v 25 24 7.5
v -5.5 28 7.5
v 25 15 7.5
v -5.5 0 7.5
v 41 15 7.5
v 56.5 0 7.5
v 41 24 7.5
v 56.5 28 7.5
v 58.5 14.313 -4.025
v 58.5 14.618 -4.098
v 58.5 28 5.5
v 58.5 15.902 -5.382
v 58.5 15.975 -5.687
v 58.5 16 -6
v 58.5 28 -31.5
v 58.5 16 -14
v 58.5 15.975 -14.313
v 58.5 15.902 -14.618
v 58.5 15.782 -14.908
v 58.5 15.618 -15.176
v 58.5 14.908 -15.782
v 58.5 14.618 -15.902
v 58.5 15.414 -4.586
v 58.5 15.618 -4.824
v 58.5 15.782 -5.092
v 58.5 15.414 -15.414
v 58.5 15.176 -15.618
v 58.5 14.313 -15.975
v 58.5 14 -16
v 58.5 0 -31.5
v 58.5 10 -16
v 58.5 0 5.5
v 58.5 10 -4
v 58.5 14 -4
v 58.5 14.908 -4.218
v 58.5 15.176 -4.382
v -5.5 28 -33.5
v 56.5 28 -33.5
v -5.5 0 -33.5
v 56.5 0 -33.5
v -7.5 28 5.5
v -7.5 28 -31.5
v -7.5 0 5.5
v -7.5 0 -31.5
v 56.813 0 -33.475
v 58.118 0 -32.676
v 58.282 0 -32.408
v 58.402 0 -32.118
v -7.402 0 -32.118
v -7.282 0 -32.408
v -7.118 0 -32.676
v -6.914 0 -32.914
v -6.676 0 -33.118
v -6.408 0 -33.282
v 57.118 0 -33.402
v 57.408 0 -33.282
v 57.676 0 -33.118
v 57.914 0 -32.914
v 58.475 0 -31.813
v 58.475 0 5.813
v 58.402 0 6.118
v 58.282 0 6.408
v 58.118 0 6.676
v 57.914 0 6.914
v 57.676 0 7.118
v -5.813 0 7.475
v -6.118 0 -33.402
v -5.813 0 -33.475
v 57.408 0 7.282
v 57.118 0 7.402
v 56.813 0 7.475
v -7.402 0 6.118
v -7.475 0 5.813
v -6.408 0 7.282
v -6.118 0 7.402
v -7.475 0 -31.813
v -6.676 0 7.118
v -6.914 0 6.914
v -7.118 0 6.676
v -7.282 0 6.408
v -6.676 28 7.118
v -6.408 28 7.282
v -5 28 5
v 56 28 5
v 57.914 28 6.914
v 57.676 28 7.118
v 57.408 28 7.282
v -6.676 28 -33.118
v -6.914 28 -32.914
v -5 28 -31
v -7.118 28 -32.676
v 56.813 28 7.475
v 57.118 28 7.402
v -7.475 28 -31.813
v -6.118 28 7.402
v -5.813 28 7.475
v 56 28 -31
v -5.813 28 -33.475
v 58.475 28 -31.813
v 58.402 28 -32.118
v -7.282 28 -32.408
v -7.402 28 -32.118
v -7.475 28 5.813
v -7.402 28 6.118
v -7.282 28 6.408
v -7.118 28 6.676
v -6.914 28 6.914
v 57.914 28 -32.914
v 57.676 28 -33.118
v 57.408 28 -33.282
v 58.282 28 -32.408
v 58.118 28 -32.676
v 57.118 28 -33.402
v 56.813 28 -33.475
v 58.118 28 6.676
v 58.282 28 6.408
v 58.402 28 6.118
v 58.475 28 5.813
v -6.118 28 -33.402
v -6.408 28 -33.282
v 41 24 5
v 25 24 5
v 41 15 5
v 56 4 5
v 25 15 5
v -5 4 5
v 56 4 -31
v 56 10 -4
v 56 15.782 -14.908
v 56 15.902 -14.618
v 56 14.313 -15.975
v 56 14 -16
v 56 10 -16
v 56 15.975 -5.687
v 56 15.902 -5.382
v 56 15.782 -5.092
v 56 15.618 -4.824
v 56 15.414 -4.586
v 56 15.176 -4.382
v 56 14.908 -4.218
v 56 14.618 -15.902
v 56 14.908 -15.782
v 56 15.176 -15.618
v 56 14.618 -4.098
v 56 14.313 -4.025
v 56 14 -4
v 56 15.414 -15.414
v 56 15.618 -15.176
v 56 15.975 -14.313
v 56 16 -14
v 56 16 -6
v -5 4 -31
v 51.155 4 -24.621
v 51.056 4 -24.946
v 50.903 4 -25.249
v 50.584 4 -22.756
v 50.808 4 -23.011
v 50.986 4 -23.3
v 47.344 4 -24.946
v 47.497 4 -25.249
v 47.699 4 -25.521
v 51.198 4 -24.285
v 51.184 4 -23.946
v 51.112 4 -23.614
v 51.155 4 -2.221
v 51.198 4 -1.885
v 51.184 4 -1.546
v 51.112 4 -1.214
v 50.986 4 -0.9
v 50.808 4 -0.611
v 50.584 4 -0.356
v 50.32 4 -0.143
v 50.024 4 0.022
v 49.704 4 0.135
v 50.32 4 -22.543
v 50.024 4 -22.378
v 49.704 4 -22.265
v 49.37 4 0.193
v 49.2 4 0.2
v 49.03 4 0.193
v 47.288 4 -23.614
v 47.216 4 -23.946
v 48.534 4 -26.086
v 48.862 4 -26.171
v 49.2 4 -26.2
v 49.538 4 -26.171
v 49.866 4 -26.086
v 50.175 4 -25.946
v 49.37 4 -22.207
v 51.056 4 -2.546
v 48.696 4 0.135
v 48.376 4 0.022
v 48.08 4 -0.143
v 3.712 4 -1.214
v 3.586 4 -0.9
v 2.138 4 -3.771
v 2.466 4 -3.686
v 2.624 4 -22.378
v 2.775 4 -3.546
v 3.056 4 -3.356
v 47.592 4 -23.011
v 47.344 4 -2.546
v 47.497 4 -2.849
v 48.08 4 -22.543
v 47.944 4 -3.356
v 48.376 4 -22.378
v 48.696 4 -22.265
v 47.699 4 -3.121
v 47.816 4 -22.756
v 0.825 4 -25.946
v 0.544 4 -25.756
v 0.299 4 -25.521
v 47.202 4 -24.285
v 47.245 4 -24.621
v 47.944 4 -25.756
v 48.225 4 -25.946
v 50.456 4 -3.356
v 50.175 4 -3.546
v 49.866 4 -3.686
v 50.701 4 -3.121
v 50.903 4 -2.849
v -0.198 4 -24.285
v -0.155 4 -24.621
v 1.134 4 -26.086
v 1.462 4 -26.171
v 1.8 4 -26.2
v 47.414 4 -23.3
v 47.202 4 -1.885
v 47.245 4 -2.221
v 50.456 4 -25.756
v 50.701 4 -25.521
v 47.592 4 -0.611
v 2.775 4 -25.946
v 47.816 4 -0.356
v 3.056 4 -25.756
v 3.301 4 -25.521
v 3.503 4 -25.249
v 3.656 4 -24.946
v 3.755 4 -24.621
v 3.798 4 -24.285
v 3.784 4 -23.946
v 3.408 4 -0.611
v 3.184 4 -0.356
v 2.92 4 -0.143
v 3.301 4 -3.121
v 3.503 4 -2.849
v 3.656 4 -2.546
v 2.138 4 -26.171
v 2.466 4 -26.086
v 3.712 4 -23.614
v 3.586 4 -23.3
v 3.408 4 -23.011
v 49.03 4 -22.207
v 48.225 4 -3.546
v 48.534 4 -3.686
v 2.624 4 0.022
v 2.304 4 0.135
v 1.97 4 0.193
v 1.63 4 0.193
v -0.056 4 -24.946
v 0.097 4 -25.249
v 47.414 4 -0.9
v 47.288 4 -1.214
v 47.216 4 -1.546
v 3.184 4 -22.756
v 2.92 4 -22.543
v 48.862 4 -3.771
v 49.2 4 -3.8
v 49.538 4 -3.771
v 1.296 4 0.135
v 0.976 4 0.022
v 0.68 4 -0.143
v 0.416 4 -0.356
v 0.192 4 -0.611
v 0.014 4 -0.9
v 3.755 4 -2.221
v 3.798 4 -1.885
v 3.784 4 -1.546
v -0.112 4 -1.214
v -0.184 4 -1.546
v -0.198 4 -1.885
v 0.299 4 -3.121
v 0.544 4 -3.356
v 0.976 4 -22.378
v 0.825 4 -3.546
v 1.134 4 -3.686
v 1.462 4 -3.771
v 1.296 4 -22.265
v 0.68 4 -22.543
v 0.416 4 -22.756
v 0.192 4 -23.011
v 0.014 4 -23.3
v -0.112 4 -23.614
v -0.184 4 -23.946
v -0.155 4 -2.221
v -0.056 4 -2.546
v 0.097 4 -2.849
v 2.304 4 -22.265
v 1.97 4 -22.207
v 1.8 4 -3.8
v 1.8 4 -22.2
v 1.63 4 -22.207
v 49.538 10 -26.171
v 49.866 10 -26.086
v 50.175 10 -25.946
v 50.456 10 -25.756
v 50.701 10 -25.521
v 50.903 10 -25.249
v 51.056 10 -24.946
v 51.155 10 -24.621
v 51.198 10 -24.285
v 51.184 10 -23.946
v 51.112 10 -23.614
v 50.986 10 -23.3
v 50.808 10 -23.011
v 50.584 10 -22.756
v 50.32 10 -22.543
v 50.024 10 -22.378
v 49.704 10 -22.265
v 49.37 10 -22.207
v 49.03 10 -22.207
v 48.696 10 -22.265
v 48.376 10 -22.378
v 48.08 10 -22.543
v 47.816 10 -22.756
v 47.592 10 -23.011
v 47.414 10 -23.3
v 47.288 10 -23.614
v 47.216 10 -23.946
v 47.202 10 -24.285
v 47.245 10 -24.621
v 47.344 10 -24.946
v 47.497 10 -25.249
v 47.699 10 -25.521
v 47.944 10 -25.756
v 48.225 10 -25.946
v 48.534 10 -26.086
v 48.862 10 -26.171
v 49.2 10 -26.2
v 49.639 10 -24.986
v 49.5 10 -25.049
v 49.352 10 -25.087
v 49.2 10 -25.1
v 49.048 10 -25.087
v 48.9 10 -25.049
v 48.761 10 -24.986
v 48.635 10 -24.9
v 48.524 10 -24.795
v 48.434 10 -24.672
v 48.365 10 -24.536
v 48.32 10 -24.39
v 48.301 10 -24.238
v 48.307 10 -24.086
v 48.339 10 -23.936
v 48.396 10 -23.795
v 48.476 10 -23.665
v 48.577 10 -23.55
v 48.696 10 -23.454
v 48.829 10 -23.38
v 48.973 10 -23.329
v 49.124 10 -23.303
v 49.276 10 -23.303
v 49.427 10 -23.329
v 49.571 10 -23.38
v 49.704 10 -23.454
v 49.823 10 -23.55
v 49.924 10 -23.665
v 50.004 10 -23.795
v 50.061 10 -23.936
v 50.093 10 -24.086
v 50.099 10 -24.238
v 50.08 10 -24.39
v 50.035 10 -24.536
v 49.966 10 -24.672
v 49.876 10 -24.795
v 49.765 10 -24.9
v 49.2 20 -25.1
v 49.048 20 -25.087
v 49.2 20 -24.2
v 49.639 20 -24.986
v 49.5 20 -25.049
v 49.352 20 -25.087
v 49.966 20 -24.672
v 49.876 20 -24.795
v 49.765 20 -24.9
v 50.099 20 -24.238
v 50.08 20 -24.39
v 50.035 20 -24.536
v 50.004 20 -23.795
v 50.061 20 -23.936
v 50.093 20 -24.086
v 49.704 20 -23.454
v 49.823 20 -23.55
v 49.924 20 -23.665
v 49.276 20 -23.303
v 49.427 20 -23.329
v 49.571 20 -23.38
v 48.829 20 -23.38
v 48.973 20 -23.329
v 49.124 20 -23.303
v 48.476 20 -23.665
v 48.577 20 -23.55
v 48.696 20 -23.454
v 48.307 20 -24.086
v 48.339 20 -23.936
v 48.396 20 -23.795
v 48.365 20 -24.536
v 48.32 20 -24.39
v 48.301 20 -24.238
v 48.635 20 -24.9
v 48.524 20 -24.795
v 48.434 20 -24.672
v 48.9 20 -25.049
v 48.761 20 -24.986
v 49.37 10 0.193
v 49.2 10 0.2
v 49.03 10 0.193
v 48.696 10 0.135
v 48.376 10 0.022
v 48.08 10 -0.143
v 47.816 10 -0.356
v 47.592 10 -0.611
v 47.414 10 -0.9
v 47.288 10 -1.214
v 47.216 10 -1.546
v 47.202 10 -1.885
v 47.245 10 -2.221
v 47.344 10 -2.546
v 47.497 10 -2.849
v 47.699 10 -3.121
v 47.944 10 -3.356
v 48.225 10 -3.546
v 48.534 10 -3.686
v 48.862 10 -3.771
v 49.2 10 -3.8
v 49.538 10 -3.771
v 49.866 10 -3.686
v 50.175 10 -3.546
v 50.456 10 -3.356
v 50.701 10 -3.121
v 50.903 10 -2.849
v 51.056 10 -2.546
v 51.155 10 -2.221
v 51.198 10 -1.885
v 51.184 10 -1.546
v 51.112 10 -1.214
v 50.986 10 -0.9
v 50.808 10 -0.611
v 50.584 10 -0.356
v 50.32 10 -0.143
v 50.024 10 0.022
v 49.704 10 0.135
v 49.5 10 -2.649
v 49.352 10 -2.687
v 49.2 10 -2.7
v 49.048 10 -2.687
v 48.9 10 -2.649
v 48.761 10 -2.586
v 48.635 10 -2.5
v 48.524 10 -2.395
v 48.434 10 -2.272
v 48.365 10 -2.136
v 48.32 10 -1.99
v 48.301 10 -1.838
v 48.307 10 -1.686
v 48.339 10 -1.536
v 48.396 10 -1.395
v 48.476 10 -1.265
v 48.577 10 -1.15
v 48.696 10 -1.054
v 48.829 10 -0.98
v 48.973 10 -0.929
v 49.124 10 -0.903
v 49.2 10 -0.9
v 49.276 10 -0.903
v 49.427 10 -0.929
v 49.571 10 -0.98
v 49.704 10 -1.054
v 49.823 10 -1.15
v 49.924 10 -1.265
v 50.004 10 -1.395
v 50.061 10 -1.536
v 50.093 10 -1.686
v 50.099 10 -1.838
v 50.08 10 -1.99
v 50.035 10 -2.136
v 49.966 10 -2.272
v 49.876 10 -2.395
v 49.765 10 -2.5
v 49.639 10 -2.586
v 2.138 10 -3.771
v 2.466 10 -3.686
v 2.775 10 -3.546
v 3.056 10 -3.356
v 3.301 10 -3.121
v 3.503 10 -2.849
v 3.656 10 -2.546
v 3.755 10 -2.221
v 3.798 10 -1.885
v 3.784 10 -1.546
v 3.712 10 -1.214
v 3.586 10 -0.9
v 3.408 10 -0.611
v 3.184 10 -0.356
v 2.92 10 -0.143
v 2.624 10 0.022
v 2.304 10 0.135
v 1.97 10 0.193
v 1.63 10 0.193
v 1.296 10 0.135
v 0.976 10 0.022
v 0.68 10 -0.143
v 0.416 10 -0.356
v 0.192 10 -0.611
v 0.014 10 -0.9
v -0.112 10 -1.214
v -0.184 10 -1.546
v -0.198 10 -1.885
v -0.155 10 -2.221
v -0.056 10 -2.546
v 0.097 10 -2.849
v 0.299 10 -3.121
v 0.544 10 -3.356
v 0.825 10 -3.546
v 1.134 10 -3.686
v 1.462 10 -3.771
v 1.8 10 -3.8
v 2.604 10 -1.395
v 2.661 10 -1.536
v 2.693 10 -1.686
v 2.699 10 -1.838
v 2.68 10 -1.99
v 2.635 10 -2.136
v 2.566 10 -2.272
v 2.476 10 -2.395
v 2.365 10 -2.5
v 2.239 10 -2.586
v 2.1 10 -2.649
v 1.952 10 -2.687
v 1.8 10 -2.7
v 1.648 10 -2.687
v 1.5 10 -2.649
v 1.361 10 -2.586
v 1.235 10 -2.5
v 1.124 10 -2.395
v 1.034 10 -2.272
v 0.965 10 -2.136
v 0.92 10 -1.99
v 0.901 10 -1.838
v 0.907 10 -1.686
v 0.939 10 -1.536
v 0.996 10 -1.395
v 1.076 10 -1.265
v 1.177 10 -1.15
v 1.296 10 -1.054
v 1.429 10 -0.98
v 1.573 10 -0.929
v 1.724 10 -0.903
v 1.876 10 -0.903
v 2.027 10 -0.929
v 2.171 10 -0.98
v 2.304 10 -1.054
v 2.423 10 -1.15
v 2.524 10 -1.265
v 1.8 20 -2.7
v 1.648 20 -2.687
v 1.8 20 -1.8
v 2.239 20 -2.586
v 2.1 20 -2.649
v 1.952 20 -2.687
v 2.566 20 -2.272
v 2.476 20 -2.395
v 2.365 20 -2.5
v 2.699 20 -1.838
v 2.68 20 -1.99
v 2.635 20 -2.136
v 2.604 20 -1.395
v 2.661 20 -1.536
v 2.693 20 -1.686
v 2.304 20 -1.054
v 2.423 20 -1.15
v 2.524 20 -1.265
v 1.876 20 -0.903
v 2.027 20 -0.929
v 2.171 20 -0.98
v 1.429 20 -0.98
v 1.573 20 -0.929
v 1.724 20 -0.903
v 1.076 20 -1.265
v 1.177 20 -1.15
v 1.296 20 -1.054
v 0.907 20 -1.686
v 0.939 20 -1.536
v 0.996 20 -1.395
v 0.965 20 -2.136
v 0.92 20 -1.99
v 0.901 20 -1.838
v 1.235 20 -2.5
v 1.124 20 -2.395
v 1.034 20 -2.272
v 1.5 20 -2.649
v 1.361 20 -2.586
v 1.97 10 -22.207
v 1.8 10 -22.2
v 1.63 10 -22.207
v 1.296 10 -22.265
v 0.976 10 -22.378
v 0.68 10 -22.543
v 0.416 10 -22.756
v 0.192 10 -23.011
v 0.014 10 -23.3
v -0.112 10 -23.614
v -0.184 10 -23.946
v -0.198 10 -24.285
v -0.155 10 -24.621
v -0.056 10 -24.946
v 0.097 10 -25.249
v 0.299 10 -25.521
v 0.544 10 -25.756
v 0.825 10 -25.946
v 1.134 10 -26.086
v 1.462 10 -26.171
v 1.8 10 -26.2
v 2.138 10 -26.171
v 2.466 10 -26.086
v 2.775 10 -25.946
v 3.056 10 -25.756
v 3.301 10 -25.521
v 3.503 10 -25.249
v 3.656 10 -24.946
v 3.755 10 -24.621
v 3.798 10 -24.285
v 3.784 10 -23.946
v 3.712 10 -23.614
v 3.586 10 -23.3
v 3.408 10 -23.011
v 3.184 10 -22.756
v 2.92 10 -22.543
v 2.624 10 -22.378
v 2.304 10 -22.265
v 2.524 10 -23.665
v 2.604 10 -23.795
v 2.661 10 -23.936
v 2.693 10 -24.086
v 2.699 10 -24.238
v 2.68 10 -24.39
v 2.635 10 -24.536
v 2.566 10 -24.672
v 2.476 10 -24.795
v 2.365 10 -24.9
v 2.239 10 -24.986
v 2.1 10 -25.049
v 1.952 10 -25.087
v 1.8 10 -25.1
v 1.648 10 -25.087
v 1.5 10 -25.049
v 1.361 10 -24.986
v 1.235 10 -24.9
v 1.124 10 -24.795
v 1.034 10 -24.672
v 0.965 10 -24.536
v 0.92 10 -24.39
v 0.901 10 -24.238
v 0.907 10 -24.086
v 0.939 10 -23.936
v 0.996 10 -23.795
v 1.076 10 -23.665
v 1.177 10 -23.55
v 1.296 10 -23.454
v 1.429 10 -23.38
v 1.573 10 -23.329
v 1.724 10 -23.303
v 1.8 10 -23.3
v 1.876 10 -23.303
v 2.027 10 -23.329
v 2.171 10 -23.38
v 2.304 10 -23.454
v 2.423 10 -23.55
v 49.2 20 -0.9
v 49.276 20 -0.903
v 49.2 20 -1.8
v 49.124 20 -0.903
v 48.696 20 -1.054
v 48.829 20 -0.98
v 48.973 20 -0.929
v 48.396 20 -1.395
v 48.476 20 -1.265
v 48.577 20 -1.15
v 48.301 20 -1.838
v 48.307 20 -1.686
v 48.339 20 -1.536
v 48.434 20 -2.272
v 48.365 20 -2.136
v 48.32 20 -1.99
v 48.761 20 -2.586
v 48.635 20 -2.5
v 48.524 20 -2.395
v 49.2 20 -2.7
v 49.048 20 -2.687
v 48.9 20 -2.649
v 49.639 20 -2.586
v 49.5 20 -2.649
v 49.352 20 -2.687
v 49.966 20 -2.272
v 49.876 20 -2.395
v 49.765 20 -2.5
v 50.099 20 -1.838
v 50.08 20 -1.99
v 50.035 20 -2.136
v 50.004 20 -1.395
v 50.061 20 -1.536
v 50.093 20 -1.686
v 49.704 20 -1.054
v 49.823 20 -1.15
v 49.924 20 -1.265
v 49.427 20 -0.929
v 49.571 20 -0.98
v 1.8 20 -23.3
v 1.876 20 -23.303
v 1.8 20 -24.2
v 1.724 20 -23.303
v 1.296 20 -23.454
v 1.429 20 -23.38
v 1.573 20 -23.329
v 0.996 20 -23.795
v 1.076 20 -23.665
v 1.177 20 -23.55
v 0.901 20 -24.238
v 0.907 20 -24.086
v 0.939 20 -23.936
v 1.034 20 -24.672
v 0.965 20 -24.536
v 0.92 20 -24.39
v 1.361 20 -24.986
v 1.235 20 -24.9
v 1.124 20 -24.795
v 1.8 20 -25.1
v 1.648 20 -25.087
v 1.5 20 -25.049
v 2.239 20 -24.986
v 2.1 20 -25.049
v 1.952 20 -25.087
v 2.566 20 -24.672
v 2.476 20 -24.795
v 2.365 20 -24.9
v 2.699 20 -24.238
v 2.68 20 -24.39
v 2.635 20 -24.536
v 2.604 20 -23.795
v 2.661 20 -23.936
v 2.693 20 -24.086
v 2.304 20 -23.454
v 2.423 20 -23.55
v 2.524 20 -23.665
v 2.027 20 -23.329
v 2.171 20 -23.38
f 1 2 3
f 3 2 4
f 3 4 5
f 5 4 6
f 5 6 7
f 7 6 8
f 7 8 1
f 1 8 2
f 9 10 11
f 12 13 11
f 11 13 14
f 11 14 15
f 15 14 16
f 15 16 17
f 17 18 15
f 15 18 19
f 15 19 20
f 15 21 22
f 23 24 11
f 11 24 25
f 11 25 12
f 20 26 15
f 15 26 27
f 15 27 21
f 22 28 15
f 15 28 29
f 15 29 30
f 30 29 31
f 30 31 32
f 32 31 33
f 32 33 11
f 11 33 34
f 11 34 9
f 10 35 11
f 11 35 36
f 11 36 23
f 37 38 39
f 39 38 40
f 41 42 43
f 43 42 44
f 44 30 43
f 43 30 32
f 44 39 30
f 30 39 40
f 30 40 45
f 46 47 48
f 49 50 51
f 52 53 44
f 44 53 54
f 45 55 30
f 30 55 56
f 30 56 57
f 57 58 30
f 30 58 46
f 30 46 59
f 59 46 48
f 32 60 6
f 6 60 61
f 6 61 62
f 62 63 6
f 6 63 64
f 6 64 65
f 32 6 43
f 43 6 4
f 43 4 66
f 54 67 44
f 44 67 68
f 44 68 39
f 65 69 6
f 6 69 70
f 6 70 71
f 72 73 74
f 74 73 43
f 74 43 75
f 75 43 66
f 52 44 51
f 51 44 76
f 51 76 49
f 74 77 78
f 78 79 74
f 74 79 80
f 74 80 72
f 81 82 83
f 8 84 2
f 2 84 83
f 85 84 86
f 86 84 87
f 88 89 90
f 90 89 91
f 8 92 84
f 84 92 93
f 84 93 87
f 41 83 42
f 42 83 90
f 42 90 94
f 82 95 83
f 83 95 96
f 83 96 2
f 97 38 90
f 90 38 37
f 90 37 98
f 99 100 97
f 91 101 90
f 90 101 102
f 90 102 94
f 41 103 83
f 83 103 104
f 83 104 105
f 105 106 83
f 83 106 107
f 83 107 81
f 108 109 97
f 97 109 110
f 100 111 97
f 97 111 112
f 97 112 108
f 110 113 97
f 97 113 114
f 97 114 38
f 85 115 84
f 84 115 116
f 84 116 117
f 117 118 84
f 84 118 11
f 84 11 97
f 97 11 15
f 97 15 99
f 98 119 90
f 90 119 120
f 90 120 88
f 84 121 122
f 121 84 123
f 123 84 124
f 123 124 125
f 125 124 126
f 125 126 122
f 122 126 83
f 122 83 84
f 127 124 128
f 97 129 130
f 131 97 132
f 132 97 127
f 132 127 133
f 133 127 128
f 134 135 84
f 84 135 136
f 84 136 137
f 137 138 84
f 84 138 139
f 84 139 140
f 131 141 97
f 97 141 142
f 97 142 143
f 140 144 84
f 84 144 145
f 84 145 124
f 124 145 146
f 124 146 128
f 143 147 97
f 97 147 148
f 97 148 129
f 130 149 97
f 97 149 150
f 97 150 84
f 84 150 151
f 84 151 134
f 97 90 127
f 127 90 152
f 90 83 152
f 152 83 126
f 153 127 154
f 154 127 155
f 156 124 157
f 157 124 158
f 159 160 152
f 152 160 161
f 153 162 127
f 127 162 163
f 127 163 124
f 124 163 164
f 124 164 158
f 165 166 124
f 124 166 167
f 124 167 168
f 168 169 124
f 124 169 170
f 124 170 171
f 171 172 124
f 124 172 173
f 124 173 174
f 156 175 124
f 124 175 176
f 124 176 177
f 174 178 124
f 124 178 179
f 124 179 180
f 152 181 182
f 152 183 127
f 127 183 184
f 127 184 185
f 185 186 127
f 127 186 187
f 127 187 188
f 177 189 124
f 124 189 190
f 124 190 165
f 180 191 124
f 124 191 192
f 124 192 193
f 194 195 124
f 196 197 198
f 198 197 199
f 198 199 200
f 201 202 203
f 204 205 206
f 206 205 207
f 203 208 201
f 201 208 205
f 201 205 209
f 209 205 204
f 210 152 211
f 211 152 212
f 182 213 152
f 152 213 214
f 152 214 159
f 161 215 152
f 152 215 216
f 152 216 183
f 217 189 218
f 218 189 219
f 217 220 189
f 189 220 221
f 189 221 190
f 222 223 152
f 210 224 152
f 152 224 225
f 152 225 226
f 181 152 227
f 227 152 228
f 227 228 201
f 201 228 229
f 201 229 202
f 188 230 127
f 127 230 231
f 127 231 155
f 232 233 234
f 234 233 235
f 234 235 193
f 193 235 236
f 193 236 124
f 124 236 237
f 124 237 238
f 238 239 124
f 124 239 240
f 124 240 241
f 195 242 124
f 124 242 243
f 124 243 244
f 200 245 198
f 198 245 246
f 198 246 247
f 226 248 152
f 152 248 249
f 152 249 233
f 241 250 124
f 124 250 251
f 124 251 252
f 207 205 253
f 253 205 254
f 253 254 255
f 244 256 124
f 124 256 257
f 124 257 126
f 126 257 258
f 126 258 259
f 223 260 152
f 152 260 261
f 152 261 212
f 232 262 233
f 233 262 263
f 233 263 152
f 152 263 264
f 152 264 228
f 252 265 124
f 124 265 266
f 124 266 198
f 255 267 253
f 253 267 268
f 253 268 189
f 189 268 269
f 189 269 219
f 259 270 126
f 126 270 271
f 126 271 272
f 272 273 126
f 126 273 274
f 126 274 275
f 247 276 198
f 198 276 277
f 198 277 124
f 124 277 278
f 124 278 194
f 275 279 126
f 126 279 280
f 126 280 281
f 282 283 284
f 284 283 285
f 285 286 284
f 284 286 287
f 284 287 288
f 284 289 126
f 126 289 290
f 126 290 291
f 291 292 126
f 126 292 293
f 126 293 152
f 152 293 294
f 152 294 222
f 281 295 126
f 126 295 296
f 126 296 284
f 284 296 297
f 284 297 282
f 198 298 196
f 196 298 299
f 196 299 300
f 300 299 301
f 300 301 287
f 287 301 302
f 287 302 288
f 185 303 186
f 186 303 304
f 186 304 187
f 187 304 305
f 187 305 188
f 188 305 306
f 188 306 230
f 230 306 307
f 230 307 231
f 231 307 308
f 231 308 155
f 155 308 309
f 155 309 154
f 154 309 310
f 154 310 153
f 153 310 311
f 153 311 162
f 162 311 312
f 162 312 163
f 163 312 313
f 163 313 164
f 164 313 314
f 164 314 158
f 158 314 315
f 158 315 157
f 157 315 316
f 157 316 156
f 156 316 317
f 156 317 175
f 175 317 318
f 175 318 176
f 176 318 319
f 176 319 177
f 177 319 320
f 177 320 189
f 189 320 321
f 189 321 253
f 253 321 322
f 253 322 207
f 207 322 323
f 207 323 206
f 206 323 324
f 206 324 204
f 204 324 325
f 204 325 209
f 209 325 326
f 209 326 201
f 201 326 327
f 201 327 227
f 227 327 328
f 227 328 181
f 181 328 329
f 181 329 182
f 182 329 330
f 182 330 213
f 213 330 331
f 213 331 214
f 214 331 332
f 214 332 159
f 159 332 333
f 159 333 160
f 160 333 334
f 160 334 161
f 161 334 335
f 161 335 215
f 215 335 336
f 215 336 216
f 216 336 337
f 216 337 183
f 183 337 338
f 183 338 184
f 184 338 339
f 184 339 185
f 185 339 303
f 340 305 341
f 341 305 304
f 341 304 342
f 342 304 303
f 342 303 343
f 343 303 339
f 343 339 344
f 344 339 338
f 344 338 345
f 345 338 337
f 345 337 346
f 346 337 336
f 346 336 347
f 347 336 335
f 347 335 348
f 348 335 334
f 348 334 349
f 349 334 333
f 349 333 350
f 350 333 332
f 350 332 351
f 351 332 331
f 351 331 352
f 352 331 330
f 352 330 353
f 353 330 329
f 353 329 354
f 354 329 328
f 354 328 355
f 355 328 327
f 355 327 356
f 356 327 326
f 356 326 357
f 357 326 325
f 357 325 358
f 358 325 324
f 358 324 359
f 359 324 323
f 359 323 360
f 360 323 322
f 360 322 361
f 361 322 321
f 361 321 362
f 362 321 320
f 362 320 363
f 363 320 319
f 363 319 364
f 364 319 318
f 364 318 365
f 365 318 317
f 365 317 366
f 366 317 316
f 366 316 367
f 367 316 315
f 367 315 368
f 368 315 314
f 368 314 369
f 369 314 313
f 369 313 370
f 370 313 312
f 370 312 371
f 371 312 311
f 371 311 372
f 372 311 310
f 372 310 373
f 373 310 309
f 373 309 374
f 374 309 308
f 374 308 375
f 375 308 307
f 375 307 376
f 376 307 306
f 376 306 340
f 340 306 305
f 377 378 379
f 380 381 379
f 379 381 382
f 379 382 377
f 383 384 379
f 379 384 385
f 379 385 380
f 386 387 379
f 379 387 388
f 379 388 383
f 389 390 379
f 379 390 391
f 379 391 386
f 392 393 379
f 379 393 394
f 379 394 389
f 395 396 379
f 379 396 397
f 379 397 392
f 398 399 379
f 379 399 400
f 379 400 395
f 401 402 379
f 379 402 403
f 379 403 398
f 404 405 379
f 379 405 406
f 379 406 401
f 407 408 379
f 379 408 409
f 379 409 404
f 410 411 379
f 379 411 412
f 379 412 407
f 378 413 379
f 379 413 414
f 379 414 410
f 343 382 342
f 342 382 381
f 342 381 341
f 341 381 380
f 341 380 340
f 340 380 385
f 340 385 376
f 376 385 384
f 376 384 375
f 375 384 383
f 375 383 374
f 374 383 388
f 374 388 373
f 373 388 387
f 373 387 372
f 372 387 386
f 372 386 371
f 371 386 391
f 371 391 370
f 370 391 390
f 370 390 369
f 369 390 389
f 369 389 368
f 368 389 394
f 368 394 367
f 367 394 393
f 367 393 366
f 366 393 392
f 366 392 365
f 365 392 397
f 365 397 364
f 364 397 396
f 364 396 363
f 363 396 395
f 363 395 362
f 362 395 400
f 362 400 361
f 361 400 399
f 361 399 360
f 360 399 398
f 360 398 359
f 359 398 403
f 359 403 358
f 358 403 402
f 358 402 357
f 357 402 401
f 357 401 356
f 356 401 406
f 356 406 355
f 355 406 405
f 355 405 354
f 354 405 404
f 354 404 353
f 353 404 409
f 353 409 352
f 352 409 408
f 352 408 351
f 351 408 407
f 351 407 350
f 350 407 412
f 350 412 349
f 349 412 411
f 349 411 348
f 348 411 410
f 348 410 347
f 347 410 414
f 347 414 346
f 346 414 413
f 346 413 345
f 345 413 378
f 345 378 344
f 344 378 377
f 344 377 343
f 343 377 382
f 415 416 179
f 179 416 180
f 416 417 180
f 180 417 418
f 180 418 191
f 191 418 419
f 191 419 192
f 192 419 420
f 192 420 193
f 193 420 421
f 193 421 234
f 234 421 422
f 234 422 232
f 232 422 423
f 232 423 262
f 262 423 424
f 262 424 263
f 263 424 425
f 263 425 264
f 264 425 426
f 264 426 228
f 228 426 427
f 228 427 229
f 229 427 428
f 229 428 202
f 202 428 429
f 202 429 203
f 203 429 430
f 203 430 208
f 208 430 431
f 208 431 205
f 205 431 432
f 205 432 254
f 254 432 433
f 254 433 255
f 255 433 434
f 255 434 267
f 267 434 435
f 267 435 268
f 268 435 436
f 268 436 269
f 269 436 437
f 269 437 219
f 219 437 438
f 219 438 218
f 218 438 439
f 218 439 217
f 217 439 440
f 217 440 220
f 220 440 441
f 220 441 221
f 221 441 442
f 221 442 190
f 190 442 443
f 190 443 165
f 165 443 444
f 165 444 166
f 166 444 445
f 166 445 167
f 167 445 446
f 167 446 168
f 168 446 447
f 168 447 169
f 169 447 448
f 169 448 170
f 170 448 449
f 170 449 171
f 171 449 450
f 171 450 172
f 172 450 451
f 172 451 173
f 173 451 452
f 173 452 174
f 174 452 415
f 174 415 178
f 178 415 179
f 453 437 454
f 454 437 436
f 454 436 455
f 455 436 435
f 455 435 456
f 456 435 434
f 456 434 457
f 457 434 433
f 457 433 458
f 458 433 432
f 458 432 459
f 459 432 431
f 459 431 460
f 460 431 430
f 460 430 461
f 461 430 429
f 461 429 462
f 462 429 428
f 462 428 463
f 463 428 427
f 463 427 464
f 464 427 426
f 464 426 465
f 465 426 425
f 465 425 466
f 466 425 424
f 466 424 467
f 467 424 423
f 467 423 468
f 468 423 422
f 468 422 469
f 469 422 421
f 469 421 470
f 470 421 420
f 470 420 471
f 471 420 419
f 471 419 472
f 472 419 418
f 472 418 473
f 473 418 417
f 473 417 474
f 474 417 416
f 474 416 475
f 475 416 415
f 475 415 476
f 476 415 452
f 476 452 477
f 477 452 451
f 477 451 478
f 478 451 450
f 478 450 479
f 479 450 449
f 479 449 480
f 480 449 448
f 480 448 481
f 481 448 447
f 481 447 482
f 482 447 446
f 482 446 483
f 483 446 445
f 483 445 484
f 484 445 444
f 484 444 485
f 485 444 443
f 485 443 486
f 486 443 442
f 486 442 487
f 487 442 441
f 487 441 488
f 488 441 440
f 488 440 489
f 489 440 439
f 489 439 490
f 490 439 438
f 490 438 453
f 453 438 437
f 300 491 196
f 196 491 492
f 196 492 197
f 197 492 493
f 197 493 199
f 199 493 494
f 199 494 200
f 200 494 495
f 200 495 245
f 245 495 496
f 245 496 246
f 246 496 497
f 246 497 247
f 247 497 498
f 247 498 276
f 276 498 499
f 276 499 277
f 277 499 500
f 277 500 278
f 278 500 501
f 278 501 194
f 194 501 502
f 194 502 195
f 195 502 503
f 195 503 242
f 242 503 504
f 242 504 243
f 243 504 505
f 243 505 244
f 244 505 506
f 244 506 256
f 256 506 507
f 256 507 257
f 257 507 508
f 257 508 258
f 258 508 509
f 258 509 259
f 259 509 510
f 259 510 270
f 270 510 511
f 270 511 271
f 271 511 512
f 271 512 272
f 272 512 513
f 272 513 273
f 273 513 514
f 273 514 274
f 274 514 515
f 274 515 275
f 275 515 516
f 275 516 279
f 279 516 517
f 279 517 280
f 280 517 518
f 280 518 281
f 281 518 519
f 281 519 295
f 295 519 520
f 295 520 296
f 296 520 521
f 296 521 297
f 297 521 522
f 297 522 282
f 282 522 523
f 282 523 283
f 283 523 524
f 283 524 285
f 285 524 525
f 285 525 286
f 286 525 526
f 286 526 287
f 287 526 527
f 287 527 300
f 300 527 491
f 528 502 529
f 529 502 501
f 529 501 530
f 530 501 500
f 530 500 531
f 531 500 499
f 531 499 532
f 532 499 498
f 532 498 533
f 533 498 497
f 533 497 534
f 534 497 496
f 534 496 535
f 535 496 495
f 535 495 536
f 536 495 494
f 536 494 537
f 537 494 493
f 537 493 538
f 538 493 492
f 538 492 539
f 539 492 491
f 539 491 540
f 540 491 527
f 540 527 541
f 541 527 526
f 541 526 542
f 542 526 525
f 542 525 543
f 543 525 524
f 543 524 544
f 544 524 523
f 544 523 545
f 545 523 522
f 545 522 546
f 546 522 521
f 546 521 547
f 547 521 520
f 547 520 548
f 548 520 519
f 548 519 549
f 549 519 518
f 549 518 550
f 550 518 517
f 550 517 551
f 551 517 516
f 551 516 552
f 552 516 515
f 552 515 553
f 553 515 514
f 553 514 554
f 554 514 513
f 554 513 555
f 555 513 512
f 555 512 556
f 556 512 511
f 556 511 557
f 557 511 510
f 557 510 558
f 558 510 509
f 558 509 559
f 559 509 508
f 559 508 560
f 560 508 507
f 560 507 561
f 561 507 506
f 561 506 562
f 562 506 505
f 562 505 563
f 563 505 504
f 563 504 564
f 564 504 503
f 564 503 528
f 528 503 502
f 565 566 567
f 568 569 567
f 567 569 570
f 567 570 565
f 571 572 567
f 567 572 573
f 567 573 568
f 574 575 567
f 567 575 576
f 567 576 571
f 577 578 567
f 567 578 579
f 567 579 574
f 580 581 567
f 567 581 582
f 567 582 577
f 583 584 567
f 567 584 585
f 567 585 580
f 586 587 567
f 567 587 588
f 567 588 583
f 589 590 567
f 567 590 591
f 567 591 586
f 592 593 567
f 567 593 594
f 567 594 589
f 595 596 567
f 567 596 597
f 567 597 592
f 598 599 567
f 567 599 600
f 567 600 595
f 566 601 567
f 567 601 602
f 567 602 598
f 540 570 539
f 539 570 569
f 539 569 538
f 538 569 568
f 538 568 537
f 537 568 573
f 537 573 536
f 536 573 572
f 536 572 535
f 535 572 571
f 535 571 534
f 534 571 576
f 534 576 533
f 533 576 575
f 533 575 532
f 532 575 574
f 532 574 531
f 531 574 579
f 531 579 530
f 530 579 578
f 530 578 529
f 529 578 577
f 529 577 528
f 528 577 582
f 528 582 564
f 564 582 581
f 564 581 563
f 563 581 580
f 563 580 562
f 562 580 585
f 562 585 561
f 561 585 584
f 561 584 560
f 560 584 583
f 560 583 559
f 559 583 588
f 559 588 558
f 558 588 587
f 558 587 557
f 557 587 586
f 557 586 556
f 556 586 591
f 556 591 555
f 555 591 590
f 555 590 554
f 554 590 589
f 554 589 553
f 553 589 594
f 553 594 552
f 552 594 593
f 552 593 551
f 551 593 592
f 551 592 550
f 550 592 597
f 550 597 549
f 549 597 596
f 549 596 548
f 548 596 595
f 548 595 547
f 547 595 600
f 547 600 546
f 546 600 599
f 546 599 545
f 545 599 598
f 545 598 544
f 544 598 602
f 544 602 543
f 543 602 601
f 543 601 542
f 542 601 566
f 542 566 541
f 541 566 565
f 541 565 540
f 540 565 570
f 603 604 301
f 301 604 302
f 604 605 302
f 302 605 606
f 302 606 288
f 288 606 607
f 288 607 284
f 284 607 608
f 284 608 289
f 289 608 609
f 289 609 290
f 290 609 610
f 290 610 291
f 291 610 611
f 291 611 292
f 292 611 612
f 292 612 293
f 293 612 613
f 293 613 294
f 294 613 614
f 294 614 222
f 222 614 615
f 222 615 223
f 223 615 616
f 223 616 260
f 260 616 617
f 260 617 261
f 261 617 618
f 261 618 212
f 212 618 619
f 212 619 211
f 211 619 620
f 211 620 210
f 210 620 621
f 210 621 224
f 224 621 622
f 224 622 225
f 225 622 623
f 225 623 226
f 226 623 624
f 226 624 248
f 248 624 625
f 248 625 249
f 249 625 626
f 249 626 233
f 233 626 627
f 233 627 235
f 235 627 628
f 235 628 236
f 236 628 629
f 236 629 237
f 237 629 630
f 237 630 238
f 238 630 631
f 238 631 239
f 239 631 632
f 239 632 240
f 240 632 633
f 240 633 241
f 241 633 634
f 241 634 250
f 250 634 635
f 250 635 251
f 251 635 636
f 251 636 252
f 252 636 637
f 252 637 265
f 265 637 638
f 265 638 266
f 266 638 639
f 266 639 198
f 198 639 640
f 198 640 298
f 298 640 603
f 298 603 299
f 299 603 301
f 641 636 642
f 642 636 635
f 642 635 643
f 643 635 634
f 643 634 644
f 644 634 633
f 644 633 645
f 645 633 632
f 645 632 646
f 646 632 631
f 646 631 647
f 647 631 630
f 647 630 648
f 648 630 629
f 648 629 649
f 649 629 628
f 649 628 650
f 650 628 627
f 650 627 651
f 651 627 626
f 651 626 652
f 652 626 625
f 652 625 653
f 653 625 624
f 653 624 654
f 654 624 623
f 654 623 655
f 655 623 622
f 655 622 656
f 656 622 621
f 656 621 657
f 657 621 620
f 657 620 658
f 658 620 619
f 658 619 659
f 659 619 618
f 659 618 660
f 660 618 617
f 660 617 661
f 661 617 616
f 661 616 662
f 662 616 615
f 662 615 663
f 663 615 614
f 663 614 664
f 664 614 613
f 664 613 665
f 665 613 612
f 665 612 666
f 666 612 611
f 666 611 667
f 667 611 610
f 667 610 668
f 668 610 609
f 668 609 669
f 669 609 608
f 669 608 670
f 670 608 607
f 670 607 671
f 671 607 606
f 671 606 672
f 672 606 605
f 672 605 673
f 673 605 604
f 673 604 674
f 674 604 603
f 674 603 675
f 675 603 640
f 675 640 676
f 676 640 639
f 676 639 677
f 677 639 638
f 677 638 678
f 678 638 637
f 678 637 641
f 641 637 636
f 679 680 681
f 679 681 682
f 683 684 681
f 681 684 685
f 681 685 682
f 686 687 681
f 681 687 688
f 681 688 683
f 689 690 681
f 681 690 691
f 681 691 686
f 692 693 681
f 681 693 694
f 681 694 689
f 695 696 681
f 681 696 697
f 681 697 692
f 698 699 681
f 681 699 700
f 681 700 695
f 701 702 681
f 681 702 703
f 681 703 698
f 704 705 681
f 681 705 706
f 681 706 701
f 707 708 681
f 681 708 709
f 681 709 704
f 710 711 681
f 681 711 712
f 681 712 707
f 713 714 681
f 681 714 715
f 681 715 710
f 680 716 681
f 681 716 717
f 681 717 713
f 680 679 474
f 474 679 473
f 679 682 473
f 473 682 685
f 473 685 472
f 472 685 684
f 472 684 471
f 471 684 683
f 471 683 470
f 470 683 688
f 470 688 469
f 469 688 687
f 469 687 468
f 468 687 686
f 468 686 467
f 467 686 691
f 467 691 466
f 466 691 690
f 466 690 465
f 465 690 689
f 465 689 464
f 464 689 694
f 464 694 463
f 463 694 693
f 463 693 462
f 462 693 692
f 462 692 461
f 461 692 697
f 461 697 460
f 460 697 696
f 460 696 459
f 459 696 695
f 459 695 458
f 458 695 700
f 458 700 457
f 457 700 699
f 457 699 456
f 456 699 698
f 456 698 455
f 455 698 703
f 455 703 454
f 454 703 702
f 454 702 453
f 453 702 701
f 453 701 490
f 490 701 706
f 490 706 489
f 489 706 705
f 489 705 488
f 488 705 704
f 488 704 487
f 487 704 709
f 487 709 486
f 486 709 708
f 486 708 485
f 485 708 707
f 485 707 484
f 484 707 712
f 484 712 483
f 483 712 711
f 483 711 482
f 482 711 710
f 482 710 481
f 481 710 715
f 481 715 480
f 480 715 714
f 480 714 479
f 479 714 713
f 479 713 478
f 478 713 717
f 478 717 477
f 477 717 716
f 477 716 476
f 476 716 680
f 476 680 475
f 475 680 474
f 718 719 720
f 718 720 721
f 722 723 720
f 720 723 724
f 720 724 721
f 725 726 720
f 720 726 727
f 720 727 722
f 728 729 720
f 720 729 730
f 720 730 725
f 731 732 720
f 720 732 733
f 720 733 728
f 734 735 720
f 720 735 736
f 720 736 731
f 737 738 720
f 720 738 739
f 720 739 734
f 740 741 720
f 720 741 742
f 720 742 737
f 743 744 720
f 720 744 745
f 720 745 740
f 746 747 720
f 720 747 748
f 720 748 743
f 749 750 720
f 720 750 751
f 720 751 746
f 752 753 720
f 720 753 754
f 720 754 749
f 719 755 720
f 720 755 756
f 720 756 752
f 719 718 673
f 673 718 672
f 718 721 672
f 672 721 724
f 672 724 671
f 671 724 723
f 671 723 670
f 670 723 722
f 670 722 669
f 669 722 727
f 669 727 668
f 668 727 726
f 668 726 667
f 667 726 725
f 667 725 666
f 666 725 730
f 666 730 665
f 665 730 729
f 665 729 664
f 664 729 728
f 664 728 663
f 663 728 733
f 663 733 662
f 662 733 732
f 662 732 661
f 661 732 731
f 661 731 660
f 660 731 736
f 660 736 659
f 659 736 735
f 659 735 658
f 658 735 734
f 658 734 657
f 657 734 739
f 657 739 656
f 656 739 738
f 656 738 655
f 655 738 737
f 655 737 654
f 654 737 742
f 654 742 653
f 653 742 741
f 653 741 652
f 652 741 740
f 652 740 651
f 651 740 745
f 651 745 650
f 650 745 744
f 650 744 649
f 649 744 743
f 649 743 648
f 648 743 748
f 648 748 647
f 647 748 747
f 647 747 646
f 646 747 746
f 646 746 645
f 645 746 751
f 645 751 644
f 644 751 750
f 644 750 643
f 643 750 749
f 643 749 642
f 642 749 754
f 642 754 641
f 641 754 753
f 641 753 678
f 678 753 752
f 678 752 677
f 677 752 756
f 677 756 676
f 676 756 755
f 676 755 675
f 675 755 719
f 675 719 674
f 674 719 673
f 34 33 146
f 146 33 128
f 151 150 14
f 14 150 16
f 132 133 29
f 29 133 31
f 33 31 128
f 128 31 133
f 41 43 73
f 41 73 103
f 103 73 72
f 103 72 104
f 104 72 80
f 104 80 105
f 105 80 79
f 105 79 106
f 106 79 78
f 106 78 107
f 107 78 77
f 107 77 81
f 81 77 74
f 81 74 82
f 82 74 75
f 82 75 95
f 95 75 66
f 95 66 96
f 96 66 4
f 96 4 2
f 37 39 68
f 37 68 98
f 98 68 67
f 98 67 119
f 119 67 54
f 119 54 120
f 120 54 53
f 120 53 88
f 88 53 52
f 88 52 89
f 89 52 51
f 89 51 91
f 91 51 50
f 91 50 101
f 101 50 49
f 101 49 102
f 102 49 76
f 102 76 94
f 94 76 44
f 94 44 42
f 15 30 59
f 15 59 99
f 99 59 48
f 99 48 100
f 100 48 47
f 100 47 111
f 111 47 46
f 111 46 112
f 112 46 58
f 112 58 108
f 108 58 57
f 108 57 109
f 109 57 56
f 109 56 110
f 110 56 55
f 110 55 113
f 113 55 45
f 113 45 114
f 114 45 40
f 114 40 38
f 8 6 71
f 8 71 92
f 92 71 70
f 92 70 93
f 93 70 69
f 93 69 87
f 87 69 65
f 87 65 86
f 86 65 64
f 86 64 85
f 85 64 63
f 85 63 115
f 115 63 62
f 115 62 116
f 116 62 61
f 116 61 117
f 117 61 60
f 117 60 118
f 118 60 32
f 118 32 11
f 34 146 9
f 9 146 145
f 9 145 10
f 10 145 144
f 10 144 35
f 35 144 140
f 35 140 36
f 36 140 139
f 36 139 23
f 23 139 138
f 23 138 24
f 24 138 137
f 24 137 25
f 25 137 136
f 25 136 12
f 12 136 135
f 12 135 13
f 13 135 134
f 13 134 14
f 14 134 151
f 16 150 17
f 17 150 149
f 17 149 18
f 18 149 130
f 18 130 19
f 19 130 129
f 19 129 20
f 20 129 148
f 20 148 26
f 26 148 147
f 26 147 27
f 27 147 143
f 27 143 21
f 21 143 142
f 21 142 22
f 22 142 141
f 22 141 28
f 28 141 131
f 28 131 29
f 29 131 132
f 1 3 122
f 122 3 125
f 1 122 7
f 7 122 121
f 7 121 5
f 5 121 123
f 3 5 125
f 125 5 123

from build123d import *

# Parameters (mm, degrees)
SKETCH1_W           = 66
SKETCH1_H           = 41
BOSS_EXTRUDE1_DEPTH = 4
SKETCH3_W           = 66
SKETCH3_H           = 41
SKETCH3_W_2         = 61
SKETCH3_H_2         = 36
BOSS_EXTRUDE3_DEPTH = 24
SKETCH2_R           = 0.9
BOSS_EXTRUDE4_DEPTH = 16
SKETCH4_R           = 2
BOSS_EXTRUDE5_DEPTH = 6
SKETCH5_W           = 12
SKETCH5_H           = 6
CUT_EXTRUDE1_DEPTH  = 6
FILLET2_R           = 2
FILLET3_R           = 2
SKETCH6_W           = 16
SKETCH6_H           = 9
CUT_EXTRUDE2_DEPTH  = 6


with BuildPart() as part:
    # Sketch1 → Boss-Extrude1 (new body)
    with BuildSketch(Plane(origin=(0, 0, 0), x_dir=(1, 0, 0), z_dir=(0, 1, 0))):
        with Locations((25.5, 13)):
            Rectangle(SKETCH1_W, SKETCH1_H)
    extrude(amount=BOSS_EXTRUDE1_DEPTH)

    # Sketch3 → Boss-Extrude3 (add)
    with BuildSketch(Plane(origin=(0, 4, 0), x_dir=(1, 0, 0), z_dir=(0, 1, 0))):
        with Locations((25.5, 13)):
            Rectangle(SKETCH3_W, SKETCH3_H)
        with Locations((25.5, 13)):
            Rectangle(SKETCH3_W_2, SKETCH3_H_2, mode=Mode.SUBTRACT)
    extrude(amount=BOSS_EXTRUDE3_DEPTH)

    # Sketch2 → Boss-Extrude4 (add)
    with BuildSketch(Plane(origin=(0, 4, 0), x_dir=(1, 0, 0), z_dir=(0, 1, 0))):
        with Locations(Location((1.8, 24.2, 0), (0, 0, 270))):
            Circle(SKETCH2_R)
        with Locations(Location((1.8, 1.8, 0), (0, 0, 90))):
            Circle(SKETCH2_R)
        with Locations(Location((49.2, 1.8, 0), (0, 0, 270))):
            Circle(SKETCH2_R)
        with Locations(Location((49.2, 24.2, 0), (0, 0, 90))):
            Circle(SKETCH2_R)
    extrude(amount=BOSS_EXTRUDE4_DEPTH)

    # Sketch4 → Boss-Extrude5 (add)
    with BuildSketch(Plane(origin=(0, 4, 0), x_dir=(1, 0, 0), z_dir=(0, 1, 0))):
        with Locations(Location((1.8, 24.2, 0), (0, 0, 270))):
            Circle(SKETCH4_R)
        with Locations(Location((1.8, 1.8, 0), (0, 0, 90))):
            Circle(SKETCH4_R)
        with Locations(Location((49.2, 1.8, 0), (0, 0, 270))):
            Circle(SKETCH4_R)
        with Locations(Location((49.2, 24.2, 0), (0, 0, 90))):
            Circle(SKETCH4_R)
    extrude(amount=BOSS_EXTRUDE5_DEPTH)

    # Sketch5 → Cut-Extrude1 (cut)
    with BuildSketch(Plane(origin=(58.5, 0, 0), x_dir=(0, 0, -1), z_dir=(1, 0, 0))):
        with Locations((10, 13)):
            Rectangle(SKETCH5_W, SKETCH5_H)
    extrude(amount=-CUT_EXTRUDE1_DEPTH, mode=Mode.SUBTRACT)

    # Fillet2
    fillet2_edges = [part.edges().sort_by_distance(p)[0] for p in [
        (-7.5, 14, 7.5),
        (-7.5, 14, -33.5),
        (58.5, 14, -33.5),
        (58.5, 14, 7.5),
    ]]
    fillet(fillet2_edges, radius=FILLET2_R)

    # Fillet3
    fillet3_edges = [part.edges().sort_by_distance(p)[0] for p in [
        (57.25, 16, -4),
        (57.25, 16, -16),
    ]]
    fillet(fillet3_edges, radius=FILLET3_R)

    # Sketch6 → Cut-Extrude2 (cut)
    with BuildSketch(Plane.XY.offset(7.5)):
        with Locations((33, 19.5)):
            Rectangle(SKETCH6_W, SKETCH6_H)
    extrude(amount=-CUT_EXTRUDE2_DEPTH, mode=Mode.SUBTRACT)


solid = part.part
